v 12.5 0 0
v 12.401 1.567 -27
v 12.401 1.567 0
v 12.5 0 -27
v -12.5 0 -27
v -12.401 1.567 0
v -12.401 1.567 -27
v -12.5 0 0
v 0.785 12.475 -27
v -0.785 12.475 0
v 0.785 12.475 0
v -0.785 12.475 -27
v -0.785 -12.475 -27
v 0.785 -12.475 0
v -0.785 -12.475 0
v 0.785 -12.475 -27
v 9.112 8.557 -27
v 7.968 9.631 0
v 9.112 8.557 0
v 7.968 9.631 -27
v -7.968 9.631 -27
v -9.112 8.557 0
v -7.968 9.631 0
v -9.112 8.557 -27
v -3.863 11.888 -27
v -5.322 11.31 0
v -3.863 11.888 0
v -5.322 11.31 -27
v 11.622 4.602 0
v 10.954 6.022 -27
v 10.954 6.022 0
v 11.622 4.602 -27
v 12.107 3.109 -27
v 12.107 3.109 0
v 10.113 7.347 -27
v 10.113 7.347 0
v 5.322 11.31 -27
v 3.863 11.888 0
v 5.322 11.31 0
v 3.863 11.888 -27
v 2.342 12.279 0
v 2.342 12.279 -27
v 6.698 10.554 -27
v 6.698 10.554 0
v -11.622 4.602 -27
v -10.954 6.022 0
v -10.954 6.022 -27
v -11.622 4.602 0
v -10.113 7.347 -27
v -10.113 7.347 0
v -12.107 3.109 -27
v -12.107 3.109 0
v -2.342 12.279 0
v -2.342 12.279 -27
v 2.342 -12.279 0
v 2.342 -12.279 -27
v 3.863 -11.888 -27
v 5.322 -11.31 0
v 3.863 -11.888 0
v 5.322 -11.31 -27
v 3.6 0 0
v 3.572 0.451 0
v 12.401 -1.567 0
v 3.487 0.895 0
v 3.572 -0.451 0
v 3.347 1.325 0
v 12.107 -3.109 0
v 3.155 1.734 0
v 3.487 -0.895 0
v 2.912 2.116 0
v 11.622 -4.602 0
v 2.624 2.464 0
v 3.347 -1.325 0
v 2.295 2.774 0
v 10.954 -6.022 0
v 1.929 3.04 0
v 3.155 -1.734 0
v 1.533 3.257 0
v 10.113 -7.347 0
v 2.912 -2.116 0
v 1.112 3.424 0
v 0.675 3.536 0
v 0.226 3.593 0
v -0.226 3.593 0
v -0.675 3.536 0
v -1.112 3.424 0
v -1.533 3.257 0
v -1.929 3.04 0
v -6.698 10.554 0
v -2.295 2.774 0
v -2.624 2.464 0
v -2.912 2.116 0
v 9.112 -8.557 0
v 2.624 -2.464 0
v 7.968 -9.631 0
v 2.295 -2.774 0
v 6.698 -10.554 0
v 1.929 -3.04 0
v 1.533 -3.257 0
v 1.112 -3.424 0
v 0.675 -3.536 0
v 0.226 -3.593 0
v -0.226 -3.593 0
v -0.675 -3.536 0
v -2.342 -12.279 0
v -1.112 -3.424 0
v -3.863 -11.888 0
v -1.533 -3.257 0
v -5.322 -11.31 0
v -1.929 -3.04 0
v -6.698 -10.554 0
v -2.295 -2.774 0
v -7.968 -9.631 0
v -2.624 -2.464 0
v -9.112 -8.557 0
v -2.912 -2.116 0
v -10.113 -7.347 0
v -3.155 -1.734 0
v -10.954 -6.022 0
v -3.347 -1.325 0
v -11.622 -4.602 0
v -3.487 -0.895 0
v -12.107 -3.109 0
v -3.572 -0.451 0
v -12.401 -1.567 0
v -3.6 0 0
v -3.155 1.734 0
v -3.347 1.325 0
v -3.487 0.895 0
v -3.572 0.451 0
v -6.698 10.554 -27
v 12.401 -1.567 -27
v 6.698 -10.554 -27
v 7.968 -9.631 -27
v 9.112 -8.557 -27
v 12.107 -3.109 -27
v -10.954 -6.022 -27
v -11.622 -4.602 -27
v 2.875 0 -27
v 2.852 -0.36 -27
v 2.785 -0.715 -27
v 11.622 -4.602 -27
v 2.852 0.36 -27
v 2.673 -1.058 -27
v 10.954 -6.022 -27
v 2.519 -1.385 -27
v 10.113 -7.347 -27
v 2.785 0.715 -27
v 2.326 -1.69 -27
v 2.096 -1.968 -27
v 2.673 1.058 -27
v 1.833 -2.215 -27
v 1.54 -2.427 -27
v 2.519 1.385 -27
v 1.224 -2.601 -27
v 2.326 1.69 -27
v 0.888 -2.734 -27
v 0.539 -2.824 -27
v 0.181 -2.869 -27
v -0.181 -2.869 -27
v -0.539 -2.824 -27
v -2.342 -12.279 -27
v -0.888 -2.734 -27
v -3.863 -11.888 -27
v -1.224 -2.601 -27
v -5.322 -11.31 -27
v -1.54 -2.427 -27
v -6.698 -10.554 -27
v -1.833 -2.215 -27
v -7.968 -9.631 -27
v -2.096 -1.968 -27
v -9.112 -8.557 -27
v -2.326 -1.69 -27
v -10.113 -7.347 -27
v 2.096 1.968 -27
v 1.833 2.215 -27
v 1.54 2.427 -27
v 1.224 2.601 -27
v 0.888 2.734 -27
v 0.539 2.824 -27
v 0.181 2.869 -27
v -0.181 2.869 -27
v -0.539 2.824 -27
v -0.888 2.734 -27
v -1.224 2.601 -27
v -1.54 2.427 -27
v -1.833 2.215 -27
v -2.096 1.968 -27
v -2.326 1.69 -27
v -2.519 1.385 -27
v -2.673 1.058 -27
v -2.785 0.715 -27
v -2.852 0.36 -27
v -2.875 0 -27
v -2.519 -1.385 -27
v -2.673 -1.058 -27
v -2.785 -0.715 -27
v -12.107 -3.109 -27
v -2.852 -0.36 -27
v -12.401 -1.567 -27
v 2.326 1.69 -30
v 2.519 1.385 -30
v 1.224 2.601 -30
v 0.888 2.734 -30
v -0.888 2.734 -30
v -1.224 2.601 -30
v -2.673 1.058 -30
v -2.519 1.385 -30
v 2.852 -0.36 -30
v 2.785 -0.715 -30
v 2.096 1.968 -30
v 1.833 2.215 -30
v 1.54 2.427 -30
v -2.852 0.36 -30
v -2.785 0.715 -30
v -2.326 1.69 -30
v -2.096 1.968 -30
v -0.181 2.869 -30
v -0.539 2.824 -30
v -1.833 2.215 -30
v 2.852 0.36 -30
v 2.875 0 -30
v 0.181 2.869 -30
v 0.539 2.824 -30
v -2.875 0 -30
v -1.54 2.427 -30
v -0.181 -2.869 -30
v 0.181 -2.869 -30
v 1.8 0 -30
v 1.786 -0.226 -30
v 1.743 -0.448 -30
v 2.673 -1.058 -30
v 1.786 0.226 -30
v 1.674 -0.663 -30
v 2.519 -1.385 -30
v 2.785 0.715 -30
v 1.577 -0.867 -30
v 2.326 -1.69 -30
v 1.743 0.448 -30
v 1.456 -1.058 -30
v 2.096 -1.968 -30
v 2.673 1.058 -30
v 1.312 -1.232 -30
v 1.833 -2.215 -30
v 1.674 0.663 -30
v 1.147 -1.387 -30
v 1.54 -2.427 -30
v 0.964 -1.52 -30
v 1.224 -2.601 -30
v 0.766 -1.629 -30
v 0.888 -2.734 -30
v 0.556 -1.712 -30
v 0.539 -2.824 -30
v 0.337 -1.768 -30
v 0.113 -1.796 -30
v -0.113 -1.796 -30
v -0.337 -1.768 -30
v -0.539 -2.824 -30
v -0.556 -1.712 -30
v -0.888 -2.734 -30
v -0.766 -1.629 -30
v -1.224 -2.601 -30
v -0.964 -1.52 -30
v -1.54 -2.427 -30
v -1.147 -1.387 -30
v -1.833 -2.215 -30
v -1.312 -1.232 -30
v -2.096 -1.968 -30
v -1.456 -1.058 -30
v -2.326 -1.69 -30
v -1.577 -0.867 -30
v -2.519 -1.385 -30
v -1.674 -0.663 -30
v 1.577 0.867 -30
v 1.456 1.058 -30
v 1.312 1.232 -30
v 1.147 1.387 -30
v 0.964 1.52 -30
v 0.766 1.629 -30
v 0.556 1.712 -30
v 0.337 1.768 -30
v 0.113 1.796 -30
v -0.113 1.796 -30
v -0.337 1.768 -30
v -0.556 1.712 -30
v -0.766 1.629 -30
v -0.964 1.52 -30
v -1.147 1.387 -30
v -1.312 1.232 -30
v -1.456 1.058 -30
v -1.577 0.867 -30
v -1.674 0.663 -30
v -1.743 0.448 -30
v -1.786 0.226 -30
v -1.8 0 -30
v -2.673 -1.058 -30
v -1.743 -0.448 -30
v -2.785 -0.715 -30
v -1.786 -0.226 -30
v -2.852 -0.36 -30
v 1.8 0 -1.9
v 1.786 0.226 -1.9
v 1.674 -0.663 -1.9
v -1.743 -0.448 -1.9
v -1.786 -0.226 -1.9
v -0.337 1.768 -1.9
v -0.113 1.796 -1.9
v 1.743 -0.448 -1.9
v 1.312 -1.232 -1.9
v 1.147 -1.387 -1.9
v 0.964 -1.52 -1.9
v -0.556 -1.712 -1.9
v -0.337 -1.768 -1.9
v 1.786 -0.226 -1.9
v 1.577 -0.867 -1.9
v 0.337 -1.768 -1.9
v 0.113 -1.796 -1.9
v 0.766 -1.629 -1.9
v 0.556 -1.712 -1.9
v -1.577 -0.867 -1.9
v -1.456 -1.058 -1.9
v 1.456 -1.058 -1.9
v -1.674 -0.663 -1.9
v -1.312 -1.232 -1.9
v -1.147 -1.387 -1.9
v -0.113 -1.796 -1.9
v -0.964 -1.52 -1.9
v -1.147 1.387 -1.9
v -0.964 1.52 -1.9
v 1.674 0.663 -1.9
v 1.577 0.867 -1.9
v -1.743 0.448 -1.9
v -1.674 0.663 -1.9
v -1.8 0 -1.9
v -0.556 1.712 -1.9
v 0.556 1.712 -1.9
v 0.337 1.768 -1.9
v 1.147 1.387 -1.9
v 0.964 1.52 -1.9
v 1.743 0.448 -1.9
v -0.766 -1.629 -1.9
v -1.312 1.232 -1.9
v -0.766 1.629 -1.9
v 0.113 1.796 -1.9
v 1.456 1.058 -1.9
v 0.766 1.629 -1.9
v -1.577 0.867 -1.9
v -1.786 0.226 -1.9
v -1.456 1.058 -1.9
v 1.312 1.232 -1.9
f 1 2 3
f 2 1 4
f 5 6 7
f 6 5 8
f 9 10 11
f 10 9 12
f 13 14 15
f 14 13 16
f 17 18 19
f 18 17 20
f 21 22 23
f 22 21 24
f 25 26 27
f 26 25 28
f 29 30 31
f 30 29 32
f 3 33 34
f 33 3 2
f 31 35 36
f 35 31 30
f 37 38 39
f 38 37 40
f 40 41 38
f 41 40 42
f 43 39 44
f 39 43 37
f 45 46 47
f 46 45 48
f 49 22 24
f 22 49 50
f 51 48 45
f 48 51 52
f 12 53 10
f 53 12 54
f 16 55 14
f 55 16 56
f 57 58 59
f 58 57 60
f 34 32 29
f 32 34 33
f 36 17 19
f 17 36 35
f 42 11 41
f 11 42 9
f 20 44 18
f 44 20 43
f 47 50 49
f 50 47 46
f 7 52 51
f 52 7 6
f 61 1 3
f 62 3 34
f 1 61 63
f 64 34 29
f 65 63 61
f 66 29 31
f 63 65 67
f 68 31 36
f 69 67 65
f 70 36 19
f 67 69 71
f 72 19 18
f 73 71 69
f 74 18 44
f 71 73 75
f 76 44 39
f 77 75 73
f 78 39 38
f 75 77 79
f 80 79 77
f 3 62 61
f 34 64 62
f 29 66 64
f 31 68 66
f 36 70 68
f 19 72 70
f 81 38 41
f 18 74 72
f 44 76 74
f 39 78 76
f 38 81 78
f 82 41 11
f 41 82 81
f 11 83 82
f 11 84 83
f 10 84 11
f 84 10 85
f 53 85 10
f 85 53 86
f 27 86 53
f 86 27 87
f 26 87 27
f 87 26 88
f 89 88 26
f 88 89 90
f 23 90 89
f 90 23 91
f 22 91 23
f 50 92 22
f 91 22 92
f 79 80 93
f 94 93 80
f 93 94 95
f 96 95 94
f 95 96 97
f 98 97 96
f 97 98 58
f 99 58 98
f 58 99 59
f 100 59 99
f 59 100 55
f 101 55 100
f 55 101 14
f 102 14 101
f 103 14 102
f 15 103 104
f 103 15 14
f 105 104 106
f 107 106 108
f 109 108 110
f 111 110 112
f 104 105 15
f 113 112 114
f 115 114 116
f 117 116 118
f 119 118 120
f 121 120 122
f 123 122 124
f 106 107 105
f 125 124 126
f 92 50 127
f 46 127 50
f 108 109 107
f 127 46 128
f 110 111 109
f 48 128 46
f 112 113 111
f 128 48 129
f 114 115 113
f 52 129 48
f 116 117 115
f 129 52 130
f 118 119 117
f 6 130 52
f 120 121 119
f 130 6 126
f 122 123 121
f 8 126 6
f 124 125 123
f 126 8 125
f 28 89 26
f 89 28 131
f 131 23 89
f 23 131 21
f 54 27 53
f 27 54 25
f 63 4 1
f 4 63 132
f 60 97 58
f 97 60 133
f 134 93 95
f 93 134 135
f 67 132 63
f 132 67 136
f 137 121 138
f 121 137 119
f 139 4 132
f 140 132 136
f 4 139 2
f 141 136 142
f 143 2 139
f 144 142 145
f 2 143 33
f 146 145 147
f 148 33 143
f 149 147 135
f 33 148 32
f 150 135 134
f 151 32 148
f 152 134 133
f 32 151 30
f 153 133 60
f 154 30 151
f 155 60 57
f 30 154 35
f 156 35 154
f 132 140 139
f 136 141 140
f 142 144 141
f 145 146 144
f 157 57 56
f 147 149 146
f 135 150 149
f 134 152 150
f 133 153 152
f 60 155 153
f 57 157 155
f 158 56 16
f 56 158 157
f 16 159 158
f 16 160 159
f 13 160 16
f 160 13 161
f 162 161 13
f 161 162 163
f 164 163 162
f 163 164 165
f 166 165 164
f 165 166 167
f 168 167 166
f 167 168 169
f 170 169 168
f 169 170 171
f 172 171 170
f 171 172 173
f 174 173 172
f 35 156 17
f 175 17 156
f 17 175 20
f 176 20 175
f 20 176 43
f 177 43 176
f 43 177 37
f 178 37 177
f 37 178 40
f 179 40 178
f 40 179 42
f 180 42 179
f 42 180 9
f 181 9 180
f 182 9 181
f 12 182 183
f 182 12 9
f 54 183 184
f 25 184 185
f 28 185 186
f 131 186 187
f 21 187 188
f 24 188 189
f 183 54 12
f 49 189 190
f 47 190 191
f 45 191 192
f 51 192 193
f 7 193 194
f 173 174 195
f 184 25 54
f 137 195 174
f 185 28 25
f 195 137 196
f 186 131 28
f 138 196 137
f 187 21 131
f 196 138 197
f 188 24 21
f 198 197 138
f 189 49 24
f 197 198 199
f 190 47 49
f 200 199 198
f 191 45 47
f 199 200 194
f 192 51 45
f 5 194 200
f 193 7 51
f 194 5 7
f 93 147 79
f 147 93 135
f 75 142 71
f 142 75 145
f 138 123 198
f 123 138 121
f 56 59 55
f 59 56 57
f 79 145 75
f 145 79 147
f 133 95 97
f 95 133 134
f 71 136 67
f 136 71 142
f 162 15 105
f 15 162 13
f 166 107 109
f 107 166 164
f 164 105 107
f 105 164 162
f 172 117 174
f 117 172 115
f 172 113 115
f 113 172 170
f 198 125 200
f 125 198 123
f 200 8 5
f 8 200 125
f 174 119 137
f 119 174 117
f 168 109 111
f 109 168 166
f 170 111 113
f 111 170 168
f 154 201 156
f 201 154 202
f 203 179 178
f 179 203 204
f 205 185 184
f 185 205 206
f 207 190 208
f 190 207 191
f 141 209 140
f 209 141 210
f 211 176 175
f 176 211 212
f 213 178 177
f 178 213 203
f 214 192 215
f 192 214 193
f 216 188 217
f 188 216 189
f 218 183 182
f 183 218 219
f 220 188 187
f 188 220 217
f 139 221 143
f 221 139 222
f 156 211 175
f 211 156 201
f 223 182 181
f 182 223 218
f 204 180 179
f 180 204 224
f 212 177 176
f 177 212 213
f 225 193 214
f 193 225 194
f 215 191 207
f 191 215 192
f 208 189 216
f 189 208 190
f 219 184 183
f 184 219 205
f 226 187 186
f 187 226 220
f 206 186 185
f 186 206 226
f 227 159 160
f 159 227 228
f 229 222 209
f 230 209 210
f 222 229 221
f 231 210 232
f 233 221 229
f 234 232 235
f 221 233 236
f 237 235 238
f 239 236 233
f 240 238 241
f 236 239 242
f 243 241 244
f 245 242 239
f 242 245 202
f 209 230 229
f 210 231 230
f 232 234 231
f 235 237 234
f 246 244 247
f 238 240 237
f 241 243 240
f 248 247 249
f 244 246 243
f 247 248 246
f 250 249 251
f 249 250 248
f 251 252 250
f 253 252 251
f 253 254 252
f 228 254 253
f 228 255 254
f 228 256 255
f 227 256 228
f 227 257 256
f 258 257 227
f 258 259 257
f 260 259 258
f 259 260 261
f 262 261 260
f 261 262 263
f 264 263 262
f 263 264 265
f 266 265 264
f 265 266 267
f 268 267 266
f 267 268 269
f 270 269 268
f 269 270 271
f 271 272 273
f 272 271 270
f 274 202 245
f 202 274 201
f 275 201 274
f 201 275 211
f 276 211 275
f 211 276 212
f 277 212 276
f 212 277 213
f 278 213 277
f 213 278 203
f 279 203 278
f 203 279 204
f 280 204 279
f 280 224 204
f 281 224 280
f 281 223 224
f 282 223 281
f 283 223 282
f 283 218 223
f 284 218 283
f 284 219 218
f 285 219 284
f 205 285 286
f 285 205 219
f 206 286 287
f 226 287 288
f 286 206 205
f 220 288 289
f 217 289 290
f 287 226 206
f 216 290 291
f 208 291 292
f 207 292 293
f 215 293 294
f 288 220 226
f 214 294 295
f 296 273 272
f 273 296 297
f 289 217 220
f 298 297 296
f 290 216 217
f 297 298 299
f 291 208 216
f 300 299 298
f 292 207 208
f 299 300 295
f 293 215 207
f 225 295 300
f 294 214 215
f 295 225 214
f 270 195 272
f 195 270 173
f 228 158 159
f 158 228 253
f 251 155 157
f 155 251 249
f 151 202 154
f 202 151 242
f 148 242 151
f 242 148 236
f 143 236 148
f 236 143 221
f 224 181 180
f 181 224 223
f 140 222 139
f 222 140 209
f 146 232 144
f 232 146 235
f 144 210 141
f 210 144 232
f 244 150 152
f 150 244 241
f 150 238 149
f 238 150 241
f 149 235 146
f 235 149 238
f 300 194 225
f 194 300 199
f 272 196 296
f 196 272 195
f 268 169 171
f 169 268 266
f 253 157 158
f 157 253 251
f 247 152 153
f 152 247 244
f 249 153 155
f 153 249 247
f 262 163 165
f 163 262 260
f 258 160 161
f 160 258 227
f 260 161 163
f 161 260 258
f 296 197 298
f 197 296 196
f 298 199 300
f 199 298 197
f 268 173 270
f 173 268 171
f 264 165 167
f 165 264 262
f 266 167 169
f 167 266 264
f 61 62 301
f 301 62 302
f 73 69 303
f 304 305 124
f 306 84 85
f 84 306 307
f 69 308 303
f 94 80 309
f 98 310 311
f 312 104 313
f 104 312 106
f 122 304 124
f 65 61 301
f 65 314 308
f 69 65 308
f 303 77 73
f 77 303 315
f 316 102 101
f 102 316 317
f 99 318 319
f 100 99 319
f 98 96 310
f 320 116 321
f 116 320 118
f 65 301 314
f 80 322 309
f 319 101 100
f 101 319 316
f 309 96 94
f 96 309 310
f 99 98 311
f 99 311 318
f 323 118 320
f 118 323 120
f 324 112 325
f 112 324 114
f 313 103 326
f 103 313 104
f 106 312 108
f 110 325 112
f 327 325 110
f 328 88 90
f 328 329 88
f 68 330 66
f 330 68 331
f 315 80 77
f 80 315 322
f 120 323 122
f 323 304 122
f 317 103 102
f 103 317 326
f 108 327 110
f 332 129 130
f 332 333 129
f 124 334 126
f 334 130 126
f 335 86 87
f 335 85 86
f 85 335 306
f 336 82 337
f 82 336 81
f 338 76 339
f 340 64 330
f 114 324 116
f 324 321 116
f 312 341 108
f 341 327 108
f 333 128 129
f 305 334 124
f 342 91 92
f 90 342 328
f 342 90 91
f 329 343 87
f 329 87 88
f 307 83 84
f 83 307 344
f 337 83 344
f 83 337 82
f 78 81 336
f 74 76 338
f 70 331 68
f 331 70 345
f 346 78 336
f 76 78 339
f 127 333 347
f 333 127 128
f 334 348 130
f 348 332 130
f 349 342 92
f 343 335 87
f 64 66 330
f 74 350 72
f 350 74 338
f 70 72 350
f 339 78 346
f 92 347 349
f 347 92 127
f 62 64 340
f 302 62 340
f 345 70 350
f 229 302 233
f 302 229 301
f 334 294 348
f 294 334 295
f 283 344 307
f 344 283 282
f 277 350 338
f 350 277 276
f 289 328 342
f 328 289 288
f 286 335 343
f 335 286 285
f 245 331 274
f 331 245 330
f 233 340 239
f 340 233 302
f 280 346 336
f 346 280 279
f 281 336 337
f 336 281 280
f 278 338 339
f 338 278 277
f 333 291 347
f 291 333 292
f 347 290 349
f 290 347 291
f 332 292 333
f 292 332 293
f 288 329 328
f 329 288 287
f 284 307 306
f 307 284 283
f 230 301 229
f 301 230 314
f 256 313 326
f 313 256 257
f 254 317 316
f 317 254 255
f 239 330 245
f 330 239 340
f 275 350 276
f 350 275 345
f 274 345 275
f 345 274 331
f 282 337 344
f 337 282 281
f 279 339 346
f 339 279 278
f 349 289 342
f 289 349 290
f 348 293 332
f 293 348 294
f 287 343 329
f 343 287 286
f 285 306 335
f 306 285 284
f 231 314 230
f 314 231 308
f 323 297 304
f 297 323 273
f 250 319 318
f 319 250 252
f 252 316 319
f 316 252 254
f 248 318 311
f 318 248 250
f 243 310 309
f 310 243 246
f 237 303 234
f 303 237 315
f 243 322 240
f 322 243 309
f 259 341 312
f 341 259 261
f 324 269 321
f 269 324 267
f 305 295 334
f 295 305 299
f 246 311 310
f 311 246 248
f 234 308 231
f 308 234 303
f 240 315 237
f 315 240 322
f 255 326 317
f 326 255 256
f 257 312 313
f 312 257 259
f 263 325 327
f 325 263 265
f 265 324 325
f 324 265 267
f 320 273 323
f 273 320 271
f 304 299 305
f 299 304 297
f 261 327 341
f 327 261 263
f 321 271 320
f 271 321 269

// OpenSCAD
$fn = 50;

difference() {
	union() {
		translate(v = [0, 0, -27.0]) {
			cylinder(h = 27, r = 12.5);
		}
		#translate(v = [0, 0, -30.0]) {
			cylinder(h = 30, r = 2.875);
		}
	}
	union() {
		translate(v = [0, 0, 0]) {
			rotate(a = [0, 0, 0]) {
				difference() {
					union() {
						translate(v = [0, 0, -30.0]) {
							cylinder(h = 30, r = 1.5);
						}
						translate(v = [0, 0, -1.9]) {
							cylinder(h = 1.9, r1 = 1.8, r2 = 3.6);
						}
						translate(v = [0, 0, -30.0]) {
							cylinder(h = 30, r = 1.8);
						}
						translate(v = [0, 0, -30.0]) {
							cylinder(h = 30, r = 1.5);
						}
					}
					union();
				}
			}
		}
	}
}
